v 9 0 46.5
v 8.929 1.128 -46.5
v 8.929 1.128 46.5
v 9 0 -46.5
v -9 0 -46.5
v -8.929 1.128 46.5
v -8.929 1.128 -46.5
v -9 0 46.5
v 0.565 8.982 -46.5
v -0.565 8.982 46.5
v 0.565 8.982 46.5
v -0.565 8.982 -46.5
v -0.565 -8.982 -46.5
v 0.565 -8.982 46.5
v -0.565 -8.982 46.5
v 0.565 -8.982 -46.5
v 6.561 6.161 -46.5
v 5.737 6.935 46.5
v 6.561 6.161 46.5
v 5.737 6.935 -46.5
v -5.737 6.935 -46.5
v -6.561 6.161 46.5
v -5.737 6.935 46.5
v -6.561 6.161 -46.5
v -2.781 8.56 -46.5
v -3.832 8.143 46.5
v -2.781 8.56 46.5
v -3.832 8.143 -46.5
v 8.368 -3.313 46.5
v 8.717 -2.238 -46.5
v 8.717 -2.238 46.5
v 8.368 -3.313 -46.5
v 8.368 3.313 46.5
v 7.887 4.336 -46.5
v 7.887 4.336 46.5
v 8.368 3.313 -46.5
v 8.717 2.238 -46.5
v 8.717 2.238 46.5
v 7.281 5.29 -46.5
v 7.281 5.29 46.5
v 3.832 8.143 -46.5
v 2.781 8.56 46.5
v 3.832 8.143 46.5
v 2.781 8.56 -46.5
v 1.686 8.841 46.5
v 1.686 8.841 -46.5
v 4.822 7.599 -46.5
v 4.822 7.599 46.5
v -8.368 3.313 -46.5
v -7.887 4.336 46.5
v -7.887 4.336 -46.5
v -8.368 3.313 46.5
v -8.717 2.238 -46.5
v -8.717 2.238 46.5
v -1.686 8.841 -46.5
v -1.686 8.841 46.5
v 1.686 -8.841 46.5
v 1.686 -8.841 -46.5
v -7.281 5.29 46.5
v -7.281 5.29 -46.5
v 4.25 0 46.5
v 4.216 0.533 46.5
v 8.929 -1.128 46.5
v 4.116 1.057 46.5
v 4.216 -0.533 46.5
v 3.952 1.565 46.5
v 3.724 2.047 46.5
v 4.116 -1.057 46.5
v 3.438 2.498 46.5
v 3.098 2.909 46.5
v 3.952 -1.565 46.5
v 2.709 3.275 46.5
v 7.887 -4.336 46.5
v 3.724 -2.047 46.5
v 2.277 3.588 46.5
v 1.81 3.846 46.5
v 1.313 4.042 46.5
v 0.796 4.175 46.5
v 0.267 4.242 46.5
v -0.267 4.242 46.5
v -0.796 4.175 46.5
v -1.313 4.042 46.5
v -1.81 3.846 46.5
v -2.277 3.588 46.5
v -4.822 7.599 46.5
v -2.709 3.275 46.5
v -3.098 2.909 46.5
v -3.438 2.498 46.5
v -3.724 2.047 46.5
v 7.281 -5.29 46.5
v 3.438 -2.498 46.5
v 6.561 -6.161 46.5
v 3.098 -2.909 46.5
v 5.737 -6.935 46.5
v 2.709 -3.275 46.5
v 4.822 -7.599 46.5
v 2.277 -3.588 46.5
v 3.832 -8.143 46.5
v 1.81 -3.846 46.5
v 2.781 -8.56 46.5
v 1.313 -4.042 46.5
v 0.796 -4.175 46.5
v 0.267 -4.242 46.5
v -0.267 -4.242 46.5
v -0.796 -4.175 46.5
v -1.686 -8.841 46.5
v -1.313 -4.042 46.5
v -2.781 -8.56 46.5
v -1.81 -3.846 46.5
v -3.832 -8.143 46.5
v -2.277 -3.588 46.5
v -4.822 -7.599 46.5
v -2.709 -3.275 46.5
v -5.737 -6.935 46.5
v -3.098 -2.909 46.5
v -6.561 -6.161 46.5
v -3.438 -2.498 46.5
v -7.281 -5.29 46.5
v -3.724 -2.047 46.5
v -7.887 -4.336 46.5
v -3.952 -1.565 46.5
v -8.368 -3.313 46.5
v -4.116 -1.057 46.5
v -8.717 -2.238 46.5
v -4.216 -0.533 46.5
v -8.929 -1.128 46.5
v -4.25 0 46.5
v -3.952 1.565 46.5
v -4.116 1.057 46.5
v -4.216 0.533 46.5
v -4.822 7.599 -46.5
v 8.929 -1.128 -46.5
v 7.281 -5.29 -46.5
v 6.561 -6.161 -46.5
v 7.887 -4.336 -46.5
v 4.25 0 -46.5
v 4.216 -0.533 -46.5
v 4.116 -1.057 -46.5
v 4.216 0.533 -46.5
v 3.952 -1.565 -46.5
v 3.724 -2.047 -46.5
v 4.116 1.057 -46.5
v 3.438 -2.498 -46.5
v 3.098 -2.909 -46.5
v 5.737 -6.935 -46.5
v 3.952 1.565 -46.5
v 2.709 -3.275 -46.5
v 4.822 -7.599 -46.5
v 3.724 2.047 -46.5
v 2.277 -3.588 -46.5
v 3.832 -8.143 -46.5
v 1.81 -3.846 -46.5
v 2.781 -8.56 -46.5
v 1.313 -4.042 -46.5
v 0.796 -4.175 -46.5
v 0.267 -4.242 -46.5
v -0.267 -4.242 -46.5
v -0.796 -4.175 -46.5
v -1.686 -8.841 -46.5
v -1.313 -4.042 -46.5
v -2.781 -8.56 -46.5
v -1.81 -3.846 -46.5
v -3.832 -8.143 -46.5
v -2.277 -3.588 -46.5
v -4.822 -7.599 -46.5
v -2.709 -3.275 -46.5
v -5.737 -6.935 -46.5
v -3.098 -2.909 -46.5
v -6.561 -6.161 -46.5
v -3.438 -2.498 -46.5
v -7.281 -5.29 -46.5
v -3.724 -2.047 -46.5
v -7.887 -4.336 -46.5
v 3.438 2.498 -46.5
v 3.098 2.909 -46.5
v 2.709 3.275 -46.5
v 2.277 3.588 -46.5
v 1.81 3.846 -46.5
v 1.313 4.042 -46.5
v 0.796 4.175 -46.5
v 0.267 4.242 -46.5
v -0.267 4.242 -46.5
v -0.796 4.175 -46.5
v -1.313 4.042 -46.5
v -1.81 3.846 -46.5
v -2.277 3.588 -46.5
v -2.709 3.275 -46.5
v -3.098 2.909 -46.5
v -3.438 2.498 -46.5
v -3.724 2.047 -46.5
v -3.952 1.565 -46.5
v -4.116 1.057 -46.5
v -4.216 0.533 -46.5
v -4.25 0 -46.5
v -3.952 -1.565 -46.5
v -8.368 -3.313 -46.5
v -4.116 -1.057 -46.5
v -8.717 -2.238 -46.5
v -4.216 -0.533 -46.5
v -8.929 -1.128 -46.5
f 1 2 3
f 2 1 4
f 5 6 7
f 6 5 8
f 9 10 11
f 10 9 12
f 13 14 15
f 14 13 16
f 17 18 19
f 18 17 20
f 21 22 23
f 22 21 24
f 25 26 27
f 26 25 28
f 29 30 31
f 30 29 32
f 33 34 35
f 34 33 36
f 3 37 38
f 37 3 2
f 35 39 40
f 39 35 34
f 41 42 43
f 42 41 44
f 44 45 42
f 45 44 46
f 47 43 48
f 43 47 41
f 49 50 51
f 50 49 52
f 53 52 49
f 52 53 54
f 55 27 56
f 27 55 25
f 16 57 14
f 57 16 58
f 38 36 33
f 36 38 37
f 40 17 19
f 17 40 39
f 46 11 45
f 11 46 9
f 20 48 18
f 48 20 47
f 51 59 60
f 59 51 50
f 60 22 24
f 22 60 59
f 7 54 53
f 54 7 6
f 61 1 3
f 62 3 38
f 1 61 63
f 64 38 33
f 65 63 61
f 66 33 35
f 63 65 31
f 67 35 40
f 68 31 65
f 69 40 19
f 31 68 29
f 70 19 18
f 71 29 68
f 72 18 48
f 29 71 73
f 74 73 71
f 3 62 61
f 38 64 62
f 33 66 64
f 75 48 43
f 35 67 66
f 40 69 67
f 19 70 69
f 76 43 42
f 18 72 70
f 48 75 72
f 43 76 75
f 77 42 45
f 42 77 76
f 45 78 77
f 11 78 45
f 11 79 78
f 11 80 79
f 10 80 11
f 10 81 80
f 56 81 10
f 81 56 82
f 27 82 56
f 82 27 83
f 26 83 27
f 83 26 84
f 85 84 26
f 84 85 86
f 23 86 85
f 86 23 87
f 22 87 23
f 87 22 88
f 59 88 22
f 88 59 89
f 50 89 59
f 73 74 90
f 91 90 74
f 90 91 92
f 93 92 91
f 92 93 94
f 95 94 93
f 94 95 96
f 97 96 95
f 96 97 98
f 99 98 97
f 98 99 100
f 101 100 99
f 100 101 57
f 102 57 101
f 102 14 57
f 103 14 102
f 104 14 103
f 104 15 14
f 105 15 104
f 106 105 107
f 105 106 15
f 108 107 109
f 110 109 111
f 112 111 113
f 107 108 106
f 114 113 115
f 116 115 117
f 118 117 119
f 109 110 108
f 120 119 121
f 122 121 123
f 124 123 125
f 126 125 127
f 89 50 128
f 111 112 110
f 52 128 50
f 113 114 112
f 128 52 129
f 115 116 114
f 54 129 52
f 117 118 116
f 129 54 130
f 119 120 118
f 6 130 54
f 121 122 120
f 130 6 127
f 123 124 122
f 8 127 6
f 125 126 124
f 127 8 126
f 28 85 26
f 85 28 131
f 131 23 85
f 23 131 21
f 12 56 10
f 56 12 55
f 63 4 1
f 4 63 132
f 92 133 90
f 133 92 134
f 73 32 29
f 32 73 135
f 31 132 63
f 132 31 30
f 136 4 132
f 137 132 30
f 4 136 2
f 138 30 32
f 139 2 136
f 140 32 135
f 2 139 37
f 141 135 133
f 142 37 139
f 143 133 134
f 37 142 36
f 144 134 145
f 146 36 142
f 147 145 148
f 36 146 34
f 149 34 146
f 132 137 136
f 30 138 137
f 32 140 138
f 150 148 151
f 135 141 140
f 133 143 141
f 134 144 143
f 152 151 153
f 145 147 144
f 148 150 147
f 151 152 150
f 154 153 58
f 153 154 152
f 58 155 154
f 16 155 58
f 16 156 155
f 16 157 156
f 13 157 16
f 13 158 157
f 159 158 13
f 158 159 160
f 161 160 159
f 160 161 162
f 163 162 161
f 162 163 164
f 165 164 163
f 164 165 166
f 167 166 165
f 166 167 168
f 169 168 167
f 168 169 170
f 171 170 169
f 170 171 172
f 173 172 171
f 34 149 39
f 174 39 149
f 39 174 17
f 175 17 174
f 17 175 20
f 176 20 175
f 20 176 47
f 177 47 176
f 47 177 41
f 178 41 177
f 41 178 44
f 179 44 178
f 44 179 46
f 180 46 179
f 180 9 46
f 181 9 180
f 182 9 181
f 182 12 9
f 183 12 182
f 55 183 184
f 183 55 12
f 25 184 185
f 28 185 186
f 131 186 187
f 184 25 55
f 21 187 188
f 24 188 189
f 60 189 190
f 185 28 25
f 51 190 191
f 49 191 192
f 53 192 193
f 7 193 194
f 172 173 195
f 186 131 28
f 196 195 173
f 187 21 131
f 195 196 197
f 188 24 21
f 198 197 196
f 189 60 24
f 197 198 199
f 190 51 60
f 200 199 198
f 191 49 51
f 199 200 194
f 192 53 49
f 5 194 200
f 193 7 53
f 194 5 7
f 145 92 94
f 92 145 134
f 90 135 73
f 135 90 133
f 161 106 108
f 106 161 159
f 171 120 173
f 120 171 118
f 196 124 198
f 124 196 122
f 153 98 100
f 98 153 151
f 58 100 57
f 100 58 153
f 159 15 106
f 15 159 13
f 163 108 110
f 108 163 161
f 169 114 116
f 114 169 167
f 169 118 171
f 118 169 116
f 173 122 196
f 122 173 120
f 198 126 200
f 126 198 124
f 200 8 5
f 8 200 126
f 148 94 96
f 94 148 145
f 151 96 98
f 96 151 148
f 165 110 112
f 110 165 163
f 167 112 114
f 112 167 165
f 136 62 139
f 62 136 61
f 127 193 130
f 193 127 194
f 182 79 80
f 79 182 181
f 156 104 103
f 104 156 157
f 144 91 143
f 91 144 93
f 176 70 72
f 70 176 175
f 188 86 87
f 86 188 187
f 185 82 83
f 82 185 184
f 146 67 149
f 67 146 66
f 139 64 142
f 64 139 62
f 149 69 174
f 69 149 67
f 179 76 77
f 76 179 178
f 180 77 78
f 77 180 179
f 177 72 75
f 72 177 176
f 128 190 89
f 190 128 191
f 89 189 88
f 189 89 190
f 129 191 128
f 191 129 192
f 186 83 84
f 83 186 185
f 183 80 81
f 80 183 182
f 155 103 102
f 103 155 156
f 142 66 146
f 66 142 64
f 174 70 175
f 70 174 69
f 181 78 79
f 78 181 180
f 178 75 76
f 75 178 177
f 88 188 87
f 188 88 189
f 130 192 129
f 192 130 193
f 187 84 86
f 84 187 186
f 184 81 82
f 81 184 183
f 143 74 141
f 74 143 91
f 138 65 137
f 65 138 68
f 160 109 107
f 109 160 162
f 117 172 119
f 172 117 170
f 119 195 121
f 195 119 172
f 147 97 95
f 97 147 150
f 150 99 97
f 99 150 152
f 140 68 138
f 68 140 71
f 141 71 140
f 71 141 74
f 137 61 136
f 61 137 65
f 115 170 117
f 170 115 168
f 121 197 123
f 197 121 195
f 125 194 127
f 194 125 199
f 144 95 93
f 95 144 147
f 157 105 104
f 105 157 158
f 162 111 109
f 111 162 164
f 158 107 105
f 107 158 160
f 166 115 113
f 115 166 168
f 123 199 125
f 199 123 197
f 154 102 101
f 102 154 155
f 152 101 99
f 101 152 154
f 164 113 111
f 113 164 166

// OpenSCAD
$fn = 50;


difference() {
	union() {
		translate(v = [0, 0, -46.5000000000]) {
			cylinder(h = 93, r = 9.0000000000);
		}
	}
	union() {
		translate(v = [0, 0, -100.0000000000]) {
			cylinder(h = 200, r = 4.2500000000);
		}
	}
}
